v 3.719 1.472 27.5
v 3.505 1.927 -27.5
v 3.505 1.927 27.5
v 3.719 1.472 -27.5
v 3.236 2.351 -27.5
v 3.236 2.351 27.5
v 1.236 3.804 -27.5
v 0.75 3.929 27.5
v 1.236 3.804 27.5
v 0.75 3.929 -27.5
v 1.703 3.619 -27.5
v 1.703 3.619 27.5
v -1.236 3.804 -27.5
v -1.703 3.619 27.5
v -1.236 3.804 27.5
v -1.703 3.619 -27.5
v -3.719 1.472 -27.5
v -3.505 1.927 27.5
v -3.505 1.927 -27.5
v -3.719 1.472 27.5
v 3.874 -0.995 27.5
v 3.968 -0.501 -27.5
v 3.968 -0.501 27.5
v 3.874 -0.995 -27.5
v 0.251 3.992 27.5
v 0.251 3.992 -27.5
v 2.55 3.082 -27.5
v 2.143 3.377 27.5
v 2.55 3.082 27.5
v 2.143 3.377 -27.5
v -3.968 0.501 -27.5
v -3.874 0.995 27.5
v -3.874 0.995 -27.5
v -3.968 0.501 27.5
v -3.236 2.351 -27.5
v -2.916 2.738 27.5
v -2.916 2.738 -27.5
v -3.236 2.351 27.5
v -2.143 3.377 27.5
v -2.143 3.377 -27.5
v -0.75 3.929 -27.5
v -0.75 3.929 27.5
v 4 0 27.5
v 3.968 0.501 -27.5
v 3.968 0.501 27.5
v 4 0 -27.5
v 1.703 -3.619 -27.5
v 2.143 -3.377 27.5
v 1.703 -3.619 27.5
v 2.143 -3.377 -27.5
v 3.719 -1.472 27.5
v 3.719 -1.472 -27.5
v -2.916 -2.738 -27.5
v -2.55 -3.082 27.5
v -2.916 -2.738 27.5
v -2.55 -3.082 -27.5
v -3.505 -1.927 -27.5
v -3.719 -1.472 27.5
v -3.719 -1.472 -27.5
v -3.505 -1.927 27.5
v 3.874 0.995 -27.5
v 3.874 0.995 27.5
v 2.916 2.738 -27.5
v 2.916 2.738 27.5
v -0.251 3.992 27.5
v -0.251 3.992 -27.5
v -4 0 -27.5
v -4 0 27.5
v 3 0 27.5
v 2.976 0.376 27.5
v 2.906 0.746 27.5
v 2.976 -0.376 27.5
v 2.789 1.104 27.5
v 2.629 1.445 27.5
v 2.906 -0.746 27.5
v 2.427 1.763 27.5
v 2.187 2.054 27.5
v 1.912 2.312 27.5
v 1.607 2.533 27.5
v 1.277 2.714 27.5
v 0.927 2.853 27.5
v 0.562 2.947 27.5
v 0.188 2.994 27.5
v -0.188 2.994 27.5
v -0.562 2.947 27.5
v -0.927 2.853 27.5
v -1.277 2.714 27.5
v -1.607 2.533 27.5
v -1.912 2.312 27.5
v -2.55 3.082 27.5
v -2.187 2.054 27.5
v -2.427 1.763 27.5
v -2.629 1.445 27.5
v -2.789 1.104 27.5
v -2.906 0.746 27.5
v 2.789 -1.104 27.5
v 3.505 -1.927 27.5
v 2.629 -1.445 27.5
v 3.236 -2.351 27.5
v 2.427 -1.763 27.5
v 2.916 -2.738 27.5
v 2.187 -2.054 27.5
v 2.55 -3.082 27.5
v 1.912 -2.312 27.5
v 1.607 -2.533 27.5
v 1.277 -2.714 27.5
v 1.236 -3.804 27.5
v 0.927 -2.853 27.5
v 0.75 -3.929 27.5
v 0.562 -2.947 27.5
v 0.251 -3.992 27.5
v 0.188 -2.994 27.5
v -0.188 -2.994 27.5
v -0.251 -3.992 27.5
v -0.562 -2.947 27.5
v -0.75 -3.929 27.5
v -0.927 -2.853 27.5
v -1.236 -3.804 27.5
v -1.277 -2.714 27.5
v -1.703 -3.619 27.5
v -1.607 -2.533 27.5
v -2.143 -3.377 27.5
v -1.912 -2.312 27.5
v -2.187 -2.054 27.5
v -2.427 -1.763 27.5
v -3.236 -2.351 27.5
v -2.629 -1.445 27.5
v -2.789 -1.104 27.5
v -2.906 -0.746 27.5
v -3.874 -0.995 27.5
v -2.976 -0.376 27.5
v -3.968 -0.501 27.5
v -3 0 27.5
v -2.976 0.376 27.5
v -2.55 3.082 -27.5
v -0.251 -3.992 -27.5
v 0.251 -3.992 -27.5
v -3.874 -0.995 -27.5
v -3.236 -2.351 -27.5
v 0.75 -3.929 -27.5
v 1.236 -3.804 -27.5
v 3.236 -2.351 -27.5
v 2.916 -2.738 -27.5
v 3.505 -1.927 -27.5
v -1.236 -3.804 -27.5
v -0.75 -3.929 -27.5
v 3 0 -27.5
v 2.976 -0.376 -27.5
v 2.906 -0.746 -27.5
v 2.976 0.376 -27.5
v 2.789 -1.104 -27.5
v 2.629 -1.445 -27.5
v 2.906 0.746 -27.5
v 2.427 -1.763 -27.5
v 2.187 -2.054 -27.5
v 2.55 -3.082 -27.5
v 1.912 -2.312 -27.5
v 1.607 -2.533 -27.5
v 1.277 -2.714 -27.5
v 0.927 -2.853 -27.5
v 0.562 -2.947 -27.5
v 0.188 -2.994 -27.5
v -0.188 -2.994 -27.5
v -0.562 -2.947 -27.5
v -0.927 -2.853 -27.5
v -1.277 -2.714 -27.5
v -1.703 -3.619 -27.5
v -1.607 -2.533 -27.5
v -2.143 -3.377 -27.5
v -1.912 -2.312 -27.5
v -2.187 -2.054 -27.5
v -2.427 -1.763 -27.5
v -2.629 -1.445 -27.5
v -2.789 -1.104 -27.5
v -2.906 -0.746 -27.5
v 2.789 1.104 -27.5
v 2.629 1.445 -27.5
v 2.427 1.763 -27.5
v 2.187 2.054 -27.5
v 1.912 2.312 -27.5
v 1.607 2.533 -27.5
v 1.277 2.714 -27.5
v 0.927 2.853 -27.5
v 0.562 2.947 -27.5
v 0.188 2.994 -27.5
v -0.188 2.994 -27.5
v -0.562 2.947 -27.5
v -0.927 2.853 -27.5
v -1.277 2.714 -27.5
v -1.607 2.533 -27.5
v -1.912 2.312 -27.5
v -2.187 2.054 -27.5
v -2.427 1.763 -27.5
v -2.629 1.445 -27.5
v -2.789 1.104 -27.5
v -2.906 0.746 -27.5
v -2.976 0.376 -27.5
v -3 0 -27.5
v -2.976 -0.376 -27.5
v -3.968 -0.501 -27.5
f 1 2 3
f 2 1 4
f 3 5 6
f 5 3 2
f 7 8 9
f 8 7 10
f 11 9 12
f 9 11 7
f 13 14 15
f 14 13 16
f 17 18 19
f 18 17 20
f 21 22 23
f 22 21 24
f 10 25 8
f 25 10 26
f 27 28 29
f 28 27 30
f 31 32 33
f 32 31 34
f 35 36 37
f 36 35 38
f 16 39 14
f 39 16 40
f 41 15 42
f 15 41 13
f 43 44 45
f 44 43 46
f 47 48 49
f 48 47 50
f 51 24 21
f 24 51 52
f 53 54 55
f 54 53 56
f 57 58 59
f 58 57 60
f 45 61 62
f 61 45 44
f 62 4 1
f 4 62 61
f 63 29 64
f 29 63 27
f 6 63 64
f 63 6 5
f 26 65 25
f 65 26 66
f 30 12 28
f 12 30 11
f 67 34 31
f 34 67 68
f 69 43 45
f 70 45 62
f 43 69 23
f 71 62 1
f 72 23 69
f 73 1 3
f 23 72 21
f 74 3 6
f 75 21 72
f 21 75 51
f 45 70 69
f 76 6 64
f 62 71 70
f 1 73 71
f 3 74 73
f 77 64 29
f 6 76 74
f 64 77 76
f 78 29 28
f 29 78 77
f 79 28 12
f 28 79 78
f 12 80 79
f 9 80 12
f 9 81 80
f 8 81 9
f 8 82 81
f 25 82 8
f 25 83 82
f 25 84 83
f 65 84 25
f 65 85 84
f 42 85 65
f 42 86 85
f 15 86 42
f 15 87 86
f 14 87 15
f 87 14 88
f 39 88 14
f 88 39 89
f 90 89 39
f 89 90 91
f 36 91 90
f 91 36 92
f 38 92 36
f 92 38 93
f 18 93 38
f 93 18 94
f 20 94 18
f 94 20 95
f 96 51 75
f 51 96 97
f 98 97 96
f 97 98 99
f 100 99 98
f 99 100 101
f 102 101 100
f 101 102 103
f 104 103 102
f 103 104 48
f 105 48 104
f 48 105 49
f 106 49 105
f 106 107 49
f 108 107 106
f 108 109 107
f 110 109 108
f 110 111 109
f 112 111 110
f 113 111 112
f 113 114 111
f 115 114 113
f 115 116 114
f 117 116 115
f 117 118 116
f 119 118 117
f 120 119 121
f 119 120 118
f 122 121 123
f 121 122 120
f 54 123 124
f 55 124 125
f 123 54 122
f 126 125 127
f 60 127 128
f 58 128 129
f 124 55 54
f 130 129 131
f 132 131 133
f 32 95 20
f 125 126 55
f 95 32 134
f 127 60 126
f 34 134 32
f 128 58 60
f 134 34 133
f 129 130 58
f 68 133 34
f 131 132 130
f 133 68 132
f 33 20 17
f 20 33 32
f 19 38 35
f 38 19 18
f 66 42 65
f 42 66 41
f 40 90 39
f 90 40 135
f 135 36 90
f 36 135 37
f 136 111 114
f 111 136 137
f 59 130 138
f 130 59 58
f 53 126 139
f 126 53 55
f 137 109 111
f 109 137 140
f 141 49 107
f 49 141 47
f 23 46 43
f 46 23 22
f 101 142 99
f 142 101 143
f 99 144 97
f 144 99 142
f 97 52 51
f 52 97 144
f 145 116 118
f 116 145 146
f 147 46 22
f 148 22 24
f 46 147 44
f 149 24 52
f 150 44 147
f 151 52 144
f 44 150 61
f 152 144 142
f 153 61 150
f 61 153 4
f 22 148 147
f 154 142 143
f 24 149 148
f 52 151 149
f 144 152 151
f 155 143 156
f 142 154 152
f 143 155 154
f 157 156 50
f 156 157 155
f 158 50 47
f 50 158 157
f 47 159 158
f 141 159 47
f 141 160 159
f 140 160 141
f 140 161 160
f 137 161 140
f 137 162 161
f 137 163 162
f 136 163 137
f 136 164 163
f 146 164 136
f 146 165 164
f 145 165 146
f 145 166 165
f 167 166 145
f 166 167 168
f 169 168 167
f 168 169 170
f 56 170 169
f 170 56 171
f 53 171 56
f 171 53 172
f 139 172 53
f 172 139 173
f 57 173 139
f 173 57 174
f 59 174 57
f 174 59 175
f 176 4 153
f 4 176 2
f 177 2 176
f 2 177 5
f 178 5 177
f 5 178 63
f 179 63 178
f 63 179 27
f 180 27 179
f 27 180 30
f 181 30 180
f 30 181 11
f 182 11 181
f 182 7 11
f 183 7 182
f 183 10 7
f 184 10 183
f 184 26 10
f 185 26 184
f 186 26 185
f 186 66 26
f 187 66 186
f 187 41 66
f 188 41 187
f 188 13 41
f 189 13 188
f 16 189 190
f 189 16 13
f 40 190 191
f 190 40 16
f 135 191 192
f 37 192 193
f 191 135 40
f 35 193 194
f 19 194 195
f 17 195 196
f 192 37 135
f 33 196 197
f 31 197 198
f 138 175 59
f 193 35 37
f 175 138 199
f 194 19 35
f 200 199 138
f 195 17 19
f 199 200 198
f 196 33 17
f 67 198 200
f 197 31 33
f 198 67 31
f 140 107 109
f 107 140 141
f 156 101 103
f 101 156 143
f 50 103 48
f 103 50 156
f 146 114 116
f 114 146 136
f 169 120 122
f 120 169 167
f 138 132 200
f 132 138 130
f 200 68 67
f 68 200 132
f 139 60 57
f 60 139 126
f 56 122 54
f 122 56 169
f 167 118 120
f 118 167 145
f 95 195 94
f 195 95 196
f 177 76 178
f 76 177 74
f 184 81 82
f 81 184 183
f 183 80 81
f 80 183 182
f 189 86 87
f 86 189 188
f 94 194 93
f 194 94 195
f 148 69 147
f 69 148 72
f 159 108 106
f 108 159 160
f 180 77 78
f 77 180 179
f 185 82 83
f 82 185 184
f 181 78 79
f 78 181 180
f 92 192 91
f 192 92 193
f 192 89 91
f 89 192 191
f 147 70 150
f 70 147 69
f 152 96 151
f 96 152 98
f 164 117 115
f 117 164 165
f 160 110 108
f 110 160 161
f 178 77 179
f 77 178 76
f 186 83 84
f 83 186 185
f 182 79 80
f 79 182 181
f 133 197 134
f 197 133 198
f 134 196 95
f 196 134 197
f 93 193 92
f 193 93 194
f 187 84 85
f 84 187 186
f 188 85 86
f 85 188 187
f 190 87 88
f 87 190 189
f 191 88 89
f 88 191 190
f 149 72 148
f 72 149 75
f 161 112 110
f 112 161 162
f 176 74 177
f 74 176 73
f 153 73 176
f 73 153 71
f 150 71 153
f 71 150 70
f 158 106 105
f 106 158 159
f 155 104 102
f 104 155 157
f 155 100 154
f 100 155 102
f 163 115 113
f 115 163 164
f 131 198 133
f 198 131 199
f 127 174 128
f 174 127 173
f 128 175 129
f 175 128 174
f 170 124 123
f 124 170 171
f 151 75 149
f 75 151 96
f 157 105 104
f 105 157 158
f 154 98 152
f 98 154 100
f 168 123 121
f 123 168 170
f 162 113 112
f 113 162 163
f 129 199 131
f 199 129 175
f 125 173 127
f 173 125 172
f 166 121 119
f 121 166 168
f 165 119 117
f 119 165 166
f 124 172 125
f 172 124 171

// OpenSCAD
$fn = 50;


difference() {
	union() {
		translate(v = [0, 0, -27.5000000000]) {
			cylinder(h = 55, r = 4.0000000000);
		}
	}
	union() {
		translate(v = [0, 0, -100.0000000000]) {
			cylinder(h = 200, r = 3);
		}
	}
}
